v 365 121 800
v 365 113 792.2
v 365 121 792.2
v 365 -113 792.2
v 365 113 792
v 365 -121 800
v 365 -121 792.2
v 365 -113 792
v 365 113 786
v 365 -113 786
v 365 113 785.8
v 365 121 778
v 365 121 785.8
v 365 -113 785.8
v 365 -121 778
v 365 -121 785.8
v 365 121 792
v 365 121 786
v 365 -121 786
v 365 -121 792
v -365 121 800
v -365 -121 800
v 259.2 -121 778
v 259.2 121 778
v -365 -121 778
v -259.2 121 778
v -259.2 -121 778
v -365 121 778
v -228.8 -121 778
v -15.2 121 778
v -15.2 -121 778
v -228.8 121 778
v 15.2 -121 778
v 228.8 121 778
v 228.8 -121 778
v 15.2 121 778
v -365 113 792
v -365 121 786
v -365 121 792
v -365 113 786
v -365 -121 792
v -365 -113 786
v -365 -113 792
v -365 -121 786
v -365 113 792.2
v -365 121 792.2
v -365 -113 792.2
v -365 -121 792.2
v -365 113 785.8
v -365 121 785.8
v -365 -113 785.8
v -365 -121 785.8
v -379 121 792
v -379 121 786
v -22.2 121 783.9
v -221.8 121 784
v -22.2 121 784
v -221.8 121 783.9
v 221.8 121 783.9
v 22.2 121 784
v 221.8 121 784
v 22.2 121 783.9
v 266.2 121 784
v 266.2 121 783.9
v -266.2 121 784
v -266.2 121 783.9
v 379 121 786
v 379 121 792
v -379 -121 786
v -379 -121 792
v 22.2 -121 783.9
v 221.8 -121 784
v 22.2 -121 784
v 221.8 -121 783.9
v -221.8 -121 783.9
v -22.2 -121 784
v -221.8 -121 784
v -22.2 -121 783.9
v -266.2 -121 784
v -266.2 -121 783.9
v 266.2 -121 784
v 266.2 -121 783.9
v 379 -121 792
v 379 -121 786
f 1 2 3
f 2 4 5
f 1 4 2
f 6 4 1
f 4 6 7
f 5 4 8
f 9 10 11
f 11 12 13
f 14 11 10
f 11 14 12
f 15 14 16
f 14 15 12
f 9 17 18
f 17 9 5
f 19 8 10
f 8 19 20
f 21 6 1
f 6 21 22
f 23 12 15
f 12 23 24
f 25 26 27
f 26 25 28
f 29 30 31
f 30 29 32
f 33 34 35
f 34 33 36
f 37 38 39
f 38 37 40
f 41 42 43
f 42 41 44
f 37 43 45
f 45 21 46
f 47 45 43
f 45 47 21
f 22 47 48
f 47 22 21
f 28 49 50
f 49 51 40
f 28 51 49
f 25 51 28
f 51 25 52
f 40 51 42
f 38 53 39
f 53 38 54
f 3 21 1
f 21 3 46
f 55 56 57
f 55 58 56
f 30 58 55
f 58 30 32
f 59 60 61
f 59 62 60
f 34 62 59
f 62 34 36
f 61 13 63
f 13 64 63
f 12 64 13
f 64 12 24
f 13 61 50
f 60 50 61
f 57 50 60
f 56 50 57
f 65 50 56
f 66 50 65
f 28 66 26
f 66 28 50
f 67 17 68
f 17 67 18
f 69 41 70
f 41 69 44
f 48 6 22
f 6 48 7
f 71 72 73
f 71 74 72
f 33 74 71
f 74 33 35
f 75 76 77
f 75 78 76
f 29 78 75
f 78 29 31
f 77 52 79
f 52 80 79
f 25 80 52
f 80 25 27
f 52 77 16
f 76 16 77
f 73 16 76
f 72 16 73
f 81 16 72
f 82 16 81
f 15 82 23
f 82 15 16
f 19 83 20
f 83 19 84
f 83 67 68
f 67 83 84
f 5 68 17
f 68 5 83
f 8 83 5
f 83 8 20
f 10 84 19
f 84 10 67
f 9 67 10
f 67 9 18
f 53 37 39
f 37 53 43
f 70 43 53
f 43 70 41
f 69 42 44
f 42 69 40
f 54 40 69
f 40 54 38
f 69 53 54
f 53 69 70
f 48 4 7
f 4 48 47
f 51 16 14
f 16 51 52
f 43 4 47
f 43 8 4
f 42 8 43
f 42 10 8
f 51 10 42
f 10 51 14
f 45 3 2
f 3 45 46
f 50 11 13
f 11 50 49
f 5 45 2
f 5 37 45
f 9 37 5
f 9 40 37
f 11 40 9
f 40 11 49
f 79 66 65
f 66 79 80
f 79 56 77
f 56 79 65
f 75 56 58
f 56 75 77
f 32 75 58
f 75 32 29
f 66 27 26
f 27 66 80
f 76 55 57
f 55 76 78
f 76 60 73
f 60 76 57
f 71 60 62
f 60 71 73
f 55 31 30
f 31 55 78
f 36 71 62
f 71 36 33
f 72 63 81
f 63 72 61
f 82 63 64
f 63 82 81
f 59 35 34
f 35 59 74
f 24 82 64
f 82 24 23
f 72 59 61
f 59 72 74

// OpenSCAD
// file: parts.scad
$fn=40;

// ---- 桌腿 ----

module leg(){
  difference(){
    union(){
      translate([390.000,390.000,0.000]) cube([60.000,60.000,750.000]);
      translate([400.000,400.000,750.000]) cube([40.000,40.000,20.000]);
    }
    // 牙板透榫槽（沿 +x，+y 侧牙板 A 端穿入）
    translate([389.000,426.800,699.800]) cube([62.000,14.400,40.400]);
    // 牙板闷榫槽（沿 +y，+x 侧牙板 B 端）
    translate([426.800,389.000,699.800]) cube([14.400,23.200,40.400]);
  }
}

// ---- 边框 ----

module rail(){
  difference(){
    union(){
      translate([0,0,750]) linear_extrude(height=50) polygon(points=[[-370,370],[370,370],[450.0,450.0],[-450.0,450.0]]);
      translate([420.607,399.393,779.0]) rotate([0,0,-45]) cube([34,40,10],center=true);
    }
    // 面板槽：全长开通至 45° 端面（角部两框的槽合起来成 L 形）
    translate([-450.000,370.000,785.800]) cube([900.000,14.000,6.400]);
    // 腿顶榫卯（两端各半，合起来 40x40x20）
    translate([399.800,399.800,750.000]) cube([40.400,40.400,20.400]);
    translate([-440.200,399.800,750.000]) cube([40.400,40.400,20.400]);
    // 格角暗榫卯
    translate([-398.545,421.455,779.0]) rotate([0,0,45]) cube([34.4,40.4,10.4],center=true);
    // 竹销孔：+x 端穿暗榫，-x 端穿本体
    translate([418,384,750]) cylinder(h=34,r=4.0,$fn=40);
    translate([-384,418,750]) cylinder(h=34,r=4.0,$fn=40);
  }
}

// ---- 牙板 ----

module apron(){
  difference(){
    union(){
      translate([-390.000,424.000,680.000]) cube([780.000,20.000,70.000]);
      // A 端：透榫（390..460）
      translate([390.000,427.000,700.000]) cube([70.000,14.000,40.000]);
      // B 端：闷榫（-412..-390）
      translate([-412.000,427.000,700.000]) cube([22.000,14.000,40.000]);
    }
    hull(){ translate([375.000,423.500,680.000]) cube([15.000,21.000,0.200]); translate([389.800,423.500,680.000]) cube([0.200,21.000,15.000]); }
    hull(){ translate([-390.000,423.500,680.000]) cube([15.000,21.000,0.200]); translate([-390.000,423.500,680.000]) cube([0.200,21.000,15.000]); }
    // 透榫楔槽（横槽，撑开榫头上下两片）
    translate([428.000,426.900,718.400]) cube([32.200,14.200,3.200]);
  }
}

// ---- 面板-边板 ----

module panel_outer(){
  difference(){
    union(){
      translate([-365.000,-365.000,778.000]) cube([730.000,244.000,22.000]);
      translate([0,0,786]) linear_extrude(height=6) polygon(points=[[-379,-121],[-379,-377],[-377,-379],[377,-379],[379,-377],[379,-121],[365,-121],[365,-365],[-365,-365],[-365,-121]]);
    }
    // 内侧龙凤榫槽（向板内 8 深：y -129..-121）
    translate([-365.000,-129.000,785.800]) cube([730.000,8.000,6.400]);
    // 穿带燕尾槽
    hull(){ translate([-259.200,-365.000,778.000]) cube([30.400,244.000,0.100]); translate([-266.200,-365.000,783.900]) cube([44.400,244.000,0.100]); }
    hull(){ translate([-15.200,-365.000,778.000]) cube([30.400,244.000,0.100]); translate([-22.200,-365.000,783.900]) cube([44.400,244.000,0.100]); }
    hull(){ translate([228.800,-365.000,778.000]) cube([30.400,244.000,0.100]); translate([221.800,-365.000,783.900]) cube([44.400,244.000,0.100]); }
  }
}

// ---- 面板-中板 ----

module panel_middle(){
  difference(){
    union(){
      translate([-365.000,-121.000,778.000]) cube([730.000,242.000,22.000]);
      translate([365.000,-121.000,786.000]) cube([14.000,242.000,6.000]);
      translate([-379.000,-121.000,786.000]) cube([14.000,242.000,6.000]);
    }
    // 两侧龙凤榫槽（各向板内 8 深）
    translate([-365.000,-121.000,785.800]) cube([730.000,8.000,6.400]);
    translate([-365.000,113.000,785.800]) cube([730.000,8.000,6.400]);
    hull(){ translate([-259.200,-121.000,778.000]) cube([30.400,242.000,0.100]); translate([-266.200,-121.000,783.900]) cube([44.400,242.000,0.100]); }
    hull(){ translate([-15.200,-121.000,778.000]) cube([30.400,242.000,0.100]); translate([-22.200,-121.000,783.900]) cube([44.400,242.000,0.100]); }
    hull(){ translate([228.800,-121.000,778.000]) cube([30.400,242.000,0.100]); translate([221.800,-121.000,783.900]) cube([44.400,242.000,0.100]); }
  }
}

// ---- 穿带 ----

module cleat(){
  union(){
    translate([-20.000,-363.000,752.000]) cube([40.000,726.000,26.000]);
    hull(){
      translate([-15.000,-363.000,777.900]) cube([30.000,726.000,0.050]);
      translate([-22.000,-363.000,783.800]) cube([44.000,726.000,0.100]);
    }
  }
}

// ---- 穿簧 ----
module spline(){ translate([-360.000,-7.800,786.100]) cube([720.000,15.600,5.800]); }
// ---- 木楔 ----
module wedge(){ hull(){ translate([435.000,427.400,719.400]) cube([1.000,13.200,1.200]); translate([467.000,427.400,718.500]) cube([1.000,13.200,3.000]); } }
// ---- 竹销 ----
module pin(){ translate([0,0,750]) cylinder(h=34,r=4.0,$fn=40); }
// main file
// 面板-中板（0° 基准件，位于整机坐标系中）
include <parts.scad>
panel_middle();
